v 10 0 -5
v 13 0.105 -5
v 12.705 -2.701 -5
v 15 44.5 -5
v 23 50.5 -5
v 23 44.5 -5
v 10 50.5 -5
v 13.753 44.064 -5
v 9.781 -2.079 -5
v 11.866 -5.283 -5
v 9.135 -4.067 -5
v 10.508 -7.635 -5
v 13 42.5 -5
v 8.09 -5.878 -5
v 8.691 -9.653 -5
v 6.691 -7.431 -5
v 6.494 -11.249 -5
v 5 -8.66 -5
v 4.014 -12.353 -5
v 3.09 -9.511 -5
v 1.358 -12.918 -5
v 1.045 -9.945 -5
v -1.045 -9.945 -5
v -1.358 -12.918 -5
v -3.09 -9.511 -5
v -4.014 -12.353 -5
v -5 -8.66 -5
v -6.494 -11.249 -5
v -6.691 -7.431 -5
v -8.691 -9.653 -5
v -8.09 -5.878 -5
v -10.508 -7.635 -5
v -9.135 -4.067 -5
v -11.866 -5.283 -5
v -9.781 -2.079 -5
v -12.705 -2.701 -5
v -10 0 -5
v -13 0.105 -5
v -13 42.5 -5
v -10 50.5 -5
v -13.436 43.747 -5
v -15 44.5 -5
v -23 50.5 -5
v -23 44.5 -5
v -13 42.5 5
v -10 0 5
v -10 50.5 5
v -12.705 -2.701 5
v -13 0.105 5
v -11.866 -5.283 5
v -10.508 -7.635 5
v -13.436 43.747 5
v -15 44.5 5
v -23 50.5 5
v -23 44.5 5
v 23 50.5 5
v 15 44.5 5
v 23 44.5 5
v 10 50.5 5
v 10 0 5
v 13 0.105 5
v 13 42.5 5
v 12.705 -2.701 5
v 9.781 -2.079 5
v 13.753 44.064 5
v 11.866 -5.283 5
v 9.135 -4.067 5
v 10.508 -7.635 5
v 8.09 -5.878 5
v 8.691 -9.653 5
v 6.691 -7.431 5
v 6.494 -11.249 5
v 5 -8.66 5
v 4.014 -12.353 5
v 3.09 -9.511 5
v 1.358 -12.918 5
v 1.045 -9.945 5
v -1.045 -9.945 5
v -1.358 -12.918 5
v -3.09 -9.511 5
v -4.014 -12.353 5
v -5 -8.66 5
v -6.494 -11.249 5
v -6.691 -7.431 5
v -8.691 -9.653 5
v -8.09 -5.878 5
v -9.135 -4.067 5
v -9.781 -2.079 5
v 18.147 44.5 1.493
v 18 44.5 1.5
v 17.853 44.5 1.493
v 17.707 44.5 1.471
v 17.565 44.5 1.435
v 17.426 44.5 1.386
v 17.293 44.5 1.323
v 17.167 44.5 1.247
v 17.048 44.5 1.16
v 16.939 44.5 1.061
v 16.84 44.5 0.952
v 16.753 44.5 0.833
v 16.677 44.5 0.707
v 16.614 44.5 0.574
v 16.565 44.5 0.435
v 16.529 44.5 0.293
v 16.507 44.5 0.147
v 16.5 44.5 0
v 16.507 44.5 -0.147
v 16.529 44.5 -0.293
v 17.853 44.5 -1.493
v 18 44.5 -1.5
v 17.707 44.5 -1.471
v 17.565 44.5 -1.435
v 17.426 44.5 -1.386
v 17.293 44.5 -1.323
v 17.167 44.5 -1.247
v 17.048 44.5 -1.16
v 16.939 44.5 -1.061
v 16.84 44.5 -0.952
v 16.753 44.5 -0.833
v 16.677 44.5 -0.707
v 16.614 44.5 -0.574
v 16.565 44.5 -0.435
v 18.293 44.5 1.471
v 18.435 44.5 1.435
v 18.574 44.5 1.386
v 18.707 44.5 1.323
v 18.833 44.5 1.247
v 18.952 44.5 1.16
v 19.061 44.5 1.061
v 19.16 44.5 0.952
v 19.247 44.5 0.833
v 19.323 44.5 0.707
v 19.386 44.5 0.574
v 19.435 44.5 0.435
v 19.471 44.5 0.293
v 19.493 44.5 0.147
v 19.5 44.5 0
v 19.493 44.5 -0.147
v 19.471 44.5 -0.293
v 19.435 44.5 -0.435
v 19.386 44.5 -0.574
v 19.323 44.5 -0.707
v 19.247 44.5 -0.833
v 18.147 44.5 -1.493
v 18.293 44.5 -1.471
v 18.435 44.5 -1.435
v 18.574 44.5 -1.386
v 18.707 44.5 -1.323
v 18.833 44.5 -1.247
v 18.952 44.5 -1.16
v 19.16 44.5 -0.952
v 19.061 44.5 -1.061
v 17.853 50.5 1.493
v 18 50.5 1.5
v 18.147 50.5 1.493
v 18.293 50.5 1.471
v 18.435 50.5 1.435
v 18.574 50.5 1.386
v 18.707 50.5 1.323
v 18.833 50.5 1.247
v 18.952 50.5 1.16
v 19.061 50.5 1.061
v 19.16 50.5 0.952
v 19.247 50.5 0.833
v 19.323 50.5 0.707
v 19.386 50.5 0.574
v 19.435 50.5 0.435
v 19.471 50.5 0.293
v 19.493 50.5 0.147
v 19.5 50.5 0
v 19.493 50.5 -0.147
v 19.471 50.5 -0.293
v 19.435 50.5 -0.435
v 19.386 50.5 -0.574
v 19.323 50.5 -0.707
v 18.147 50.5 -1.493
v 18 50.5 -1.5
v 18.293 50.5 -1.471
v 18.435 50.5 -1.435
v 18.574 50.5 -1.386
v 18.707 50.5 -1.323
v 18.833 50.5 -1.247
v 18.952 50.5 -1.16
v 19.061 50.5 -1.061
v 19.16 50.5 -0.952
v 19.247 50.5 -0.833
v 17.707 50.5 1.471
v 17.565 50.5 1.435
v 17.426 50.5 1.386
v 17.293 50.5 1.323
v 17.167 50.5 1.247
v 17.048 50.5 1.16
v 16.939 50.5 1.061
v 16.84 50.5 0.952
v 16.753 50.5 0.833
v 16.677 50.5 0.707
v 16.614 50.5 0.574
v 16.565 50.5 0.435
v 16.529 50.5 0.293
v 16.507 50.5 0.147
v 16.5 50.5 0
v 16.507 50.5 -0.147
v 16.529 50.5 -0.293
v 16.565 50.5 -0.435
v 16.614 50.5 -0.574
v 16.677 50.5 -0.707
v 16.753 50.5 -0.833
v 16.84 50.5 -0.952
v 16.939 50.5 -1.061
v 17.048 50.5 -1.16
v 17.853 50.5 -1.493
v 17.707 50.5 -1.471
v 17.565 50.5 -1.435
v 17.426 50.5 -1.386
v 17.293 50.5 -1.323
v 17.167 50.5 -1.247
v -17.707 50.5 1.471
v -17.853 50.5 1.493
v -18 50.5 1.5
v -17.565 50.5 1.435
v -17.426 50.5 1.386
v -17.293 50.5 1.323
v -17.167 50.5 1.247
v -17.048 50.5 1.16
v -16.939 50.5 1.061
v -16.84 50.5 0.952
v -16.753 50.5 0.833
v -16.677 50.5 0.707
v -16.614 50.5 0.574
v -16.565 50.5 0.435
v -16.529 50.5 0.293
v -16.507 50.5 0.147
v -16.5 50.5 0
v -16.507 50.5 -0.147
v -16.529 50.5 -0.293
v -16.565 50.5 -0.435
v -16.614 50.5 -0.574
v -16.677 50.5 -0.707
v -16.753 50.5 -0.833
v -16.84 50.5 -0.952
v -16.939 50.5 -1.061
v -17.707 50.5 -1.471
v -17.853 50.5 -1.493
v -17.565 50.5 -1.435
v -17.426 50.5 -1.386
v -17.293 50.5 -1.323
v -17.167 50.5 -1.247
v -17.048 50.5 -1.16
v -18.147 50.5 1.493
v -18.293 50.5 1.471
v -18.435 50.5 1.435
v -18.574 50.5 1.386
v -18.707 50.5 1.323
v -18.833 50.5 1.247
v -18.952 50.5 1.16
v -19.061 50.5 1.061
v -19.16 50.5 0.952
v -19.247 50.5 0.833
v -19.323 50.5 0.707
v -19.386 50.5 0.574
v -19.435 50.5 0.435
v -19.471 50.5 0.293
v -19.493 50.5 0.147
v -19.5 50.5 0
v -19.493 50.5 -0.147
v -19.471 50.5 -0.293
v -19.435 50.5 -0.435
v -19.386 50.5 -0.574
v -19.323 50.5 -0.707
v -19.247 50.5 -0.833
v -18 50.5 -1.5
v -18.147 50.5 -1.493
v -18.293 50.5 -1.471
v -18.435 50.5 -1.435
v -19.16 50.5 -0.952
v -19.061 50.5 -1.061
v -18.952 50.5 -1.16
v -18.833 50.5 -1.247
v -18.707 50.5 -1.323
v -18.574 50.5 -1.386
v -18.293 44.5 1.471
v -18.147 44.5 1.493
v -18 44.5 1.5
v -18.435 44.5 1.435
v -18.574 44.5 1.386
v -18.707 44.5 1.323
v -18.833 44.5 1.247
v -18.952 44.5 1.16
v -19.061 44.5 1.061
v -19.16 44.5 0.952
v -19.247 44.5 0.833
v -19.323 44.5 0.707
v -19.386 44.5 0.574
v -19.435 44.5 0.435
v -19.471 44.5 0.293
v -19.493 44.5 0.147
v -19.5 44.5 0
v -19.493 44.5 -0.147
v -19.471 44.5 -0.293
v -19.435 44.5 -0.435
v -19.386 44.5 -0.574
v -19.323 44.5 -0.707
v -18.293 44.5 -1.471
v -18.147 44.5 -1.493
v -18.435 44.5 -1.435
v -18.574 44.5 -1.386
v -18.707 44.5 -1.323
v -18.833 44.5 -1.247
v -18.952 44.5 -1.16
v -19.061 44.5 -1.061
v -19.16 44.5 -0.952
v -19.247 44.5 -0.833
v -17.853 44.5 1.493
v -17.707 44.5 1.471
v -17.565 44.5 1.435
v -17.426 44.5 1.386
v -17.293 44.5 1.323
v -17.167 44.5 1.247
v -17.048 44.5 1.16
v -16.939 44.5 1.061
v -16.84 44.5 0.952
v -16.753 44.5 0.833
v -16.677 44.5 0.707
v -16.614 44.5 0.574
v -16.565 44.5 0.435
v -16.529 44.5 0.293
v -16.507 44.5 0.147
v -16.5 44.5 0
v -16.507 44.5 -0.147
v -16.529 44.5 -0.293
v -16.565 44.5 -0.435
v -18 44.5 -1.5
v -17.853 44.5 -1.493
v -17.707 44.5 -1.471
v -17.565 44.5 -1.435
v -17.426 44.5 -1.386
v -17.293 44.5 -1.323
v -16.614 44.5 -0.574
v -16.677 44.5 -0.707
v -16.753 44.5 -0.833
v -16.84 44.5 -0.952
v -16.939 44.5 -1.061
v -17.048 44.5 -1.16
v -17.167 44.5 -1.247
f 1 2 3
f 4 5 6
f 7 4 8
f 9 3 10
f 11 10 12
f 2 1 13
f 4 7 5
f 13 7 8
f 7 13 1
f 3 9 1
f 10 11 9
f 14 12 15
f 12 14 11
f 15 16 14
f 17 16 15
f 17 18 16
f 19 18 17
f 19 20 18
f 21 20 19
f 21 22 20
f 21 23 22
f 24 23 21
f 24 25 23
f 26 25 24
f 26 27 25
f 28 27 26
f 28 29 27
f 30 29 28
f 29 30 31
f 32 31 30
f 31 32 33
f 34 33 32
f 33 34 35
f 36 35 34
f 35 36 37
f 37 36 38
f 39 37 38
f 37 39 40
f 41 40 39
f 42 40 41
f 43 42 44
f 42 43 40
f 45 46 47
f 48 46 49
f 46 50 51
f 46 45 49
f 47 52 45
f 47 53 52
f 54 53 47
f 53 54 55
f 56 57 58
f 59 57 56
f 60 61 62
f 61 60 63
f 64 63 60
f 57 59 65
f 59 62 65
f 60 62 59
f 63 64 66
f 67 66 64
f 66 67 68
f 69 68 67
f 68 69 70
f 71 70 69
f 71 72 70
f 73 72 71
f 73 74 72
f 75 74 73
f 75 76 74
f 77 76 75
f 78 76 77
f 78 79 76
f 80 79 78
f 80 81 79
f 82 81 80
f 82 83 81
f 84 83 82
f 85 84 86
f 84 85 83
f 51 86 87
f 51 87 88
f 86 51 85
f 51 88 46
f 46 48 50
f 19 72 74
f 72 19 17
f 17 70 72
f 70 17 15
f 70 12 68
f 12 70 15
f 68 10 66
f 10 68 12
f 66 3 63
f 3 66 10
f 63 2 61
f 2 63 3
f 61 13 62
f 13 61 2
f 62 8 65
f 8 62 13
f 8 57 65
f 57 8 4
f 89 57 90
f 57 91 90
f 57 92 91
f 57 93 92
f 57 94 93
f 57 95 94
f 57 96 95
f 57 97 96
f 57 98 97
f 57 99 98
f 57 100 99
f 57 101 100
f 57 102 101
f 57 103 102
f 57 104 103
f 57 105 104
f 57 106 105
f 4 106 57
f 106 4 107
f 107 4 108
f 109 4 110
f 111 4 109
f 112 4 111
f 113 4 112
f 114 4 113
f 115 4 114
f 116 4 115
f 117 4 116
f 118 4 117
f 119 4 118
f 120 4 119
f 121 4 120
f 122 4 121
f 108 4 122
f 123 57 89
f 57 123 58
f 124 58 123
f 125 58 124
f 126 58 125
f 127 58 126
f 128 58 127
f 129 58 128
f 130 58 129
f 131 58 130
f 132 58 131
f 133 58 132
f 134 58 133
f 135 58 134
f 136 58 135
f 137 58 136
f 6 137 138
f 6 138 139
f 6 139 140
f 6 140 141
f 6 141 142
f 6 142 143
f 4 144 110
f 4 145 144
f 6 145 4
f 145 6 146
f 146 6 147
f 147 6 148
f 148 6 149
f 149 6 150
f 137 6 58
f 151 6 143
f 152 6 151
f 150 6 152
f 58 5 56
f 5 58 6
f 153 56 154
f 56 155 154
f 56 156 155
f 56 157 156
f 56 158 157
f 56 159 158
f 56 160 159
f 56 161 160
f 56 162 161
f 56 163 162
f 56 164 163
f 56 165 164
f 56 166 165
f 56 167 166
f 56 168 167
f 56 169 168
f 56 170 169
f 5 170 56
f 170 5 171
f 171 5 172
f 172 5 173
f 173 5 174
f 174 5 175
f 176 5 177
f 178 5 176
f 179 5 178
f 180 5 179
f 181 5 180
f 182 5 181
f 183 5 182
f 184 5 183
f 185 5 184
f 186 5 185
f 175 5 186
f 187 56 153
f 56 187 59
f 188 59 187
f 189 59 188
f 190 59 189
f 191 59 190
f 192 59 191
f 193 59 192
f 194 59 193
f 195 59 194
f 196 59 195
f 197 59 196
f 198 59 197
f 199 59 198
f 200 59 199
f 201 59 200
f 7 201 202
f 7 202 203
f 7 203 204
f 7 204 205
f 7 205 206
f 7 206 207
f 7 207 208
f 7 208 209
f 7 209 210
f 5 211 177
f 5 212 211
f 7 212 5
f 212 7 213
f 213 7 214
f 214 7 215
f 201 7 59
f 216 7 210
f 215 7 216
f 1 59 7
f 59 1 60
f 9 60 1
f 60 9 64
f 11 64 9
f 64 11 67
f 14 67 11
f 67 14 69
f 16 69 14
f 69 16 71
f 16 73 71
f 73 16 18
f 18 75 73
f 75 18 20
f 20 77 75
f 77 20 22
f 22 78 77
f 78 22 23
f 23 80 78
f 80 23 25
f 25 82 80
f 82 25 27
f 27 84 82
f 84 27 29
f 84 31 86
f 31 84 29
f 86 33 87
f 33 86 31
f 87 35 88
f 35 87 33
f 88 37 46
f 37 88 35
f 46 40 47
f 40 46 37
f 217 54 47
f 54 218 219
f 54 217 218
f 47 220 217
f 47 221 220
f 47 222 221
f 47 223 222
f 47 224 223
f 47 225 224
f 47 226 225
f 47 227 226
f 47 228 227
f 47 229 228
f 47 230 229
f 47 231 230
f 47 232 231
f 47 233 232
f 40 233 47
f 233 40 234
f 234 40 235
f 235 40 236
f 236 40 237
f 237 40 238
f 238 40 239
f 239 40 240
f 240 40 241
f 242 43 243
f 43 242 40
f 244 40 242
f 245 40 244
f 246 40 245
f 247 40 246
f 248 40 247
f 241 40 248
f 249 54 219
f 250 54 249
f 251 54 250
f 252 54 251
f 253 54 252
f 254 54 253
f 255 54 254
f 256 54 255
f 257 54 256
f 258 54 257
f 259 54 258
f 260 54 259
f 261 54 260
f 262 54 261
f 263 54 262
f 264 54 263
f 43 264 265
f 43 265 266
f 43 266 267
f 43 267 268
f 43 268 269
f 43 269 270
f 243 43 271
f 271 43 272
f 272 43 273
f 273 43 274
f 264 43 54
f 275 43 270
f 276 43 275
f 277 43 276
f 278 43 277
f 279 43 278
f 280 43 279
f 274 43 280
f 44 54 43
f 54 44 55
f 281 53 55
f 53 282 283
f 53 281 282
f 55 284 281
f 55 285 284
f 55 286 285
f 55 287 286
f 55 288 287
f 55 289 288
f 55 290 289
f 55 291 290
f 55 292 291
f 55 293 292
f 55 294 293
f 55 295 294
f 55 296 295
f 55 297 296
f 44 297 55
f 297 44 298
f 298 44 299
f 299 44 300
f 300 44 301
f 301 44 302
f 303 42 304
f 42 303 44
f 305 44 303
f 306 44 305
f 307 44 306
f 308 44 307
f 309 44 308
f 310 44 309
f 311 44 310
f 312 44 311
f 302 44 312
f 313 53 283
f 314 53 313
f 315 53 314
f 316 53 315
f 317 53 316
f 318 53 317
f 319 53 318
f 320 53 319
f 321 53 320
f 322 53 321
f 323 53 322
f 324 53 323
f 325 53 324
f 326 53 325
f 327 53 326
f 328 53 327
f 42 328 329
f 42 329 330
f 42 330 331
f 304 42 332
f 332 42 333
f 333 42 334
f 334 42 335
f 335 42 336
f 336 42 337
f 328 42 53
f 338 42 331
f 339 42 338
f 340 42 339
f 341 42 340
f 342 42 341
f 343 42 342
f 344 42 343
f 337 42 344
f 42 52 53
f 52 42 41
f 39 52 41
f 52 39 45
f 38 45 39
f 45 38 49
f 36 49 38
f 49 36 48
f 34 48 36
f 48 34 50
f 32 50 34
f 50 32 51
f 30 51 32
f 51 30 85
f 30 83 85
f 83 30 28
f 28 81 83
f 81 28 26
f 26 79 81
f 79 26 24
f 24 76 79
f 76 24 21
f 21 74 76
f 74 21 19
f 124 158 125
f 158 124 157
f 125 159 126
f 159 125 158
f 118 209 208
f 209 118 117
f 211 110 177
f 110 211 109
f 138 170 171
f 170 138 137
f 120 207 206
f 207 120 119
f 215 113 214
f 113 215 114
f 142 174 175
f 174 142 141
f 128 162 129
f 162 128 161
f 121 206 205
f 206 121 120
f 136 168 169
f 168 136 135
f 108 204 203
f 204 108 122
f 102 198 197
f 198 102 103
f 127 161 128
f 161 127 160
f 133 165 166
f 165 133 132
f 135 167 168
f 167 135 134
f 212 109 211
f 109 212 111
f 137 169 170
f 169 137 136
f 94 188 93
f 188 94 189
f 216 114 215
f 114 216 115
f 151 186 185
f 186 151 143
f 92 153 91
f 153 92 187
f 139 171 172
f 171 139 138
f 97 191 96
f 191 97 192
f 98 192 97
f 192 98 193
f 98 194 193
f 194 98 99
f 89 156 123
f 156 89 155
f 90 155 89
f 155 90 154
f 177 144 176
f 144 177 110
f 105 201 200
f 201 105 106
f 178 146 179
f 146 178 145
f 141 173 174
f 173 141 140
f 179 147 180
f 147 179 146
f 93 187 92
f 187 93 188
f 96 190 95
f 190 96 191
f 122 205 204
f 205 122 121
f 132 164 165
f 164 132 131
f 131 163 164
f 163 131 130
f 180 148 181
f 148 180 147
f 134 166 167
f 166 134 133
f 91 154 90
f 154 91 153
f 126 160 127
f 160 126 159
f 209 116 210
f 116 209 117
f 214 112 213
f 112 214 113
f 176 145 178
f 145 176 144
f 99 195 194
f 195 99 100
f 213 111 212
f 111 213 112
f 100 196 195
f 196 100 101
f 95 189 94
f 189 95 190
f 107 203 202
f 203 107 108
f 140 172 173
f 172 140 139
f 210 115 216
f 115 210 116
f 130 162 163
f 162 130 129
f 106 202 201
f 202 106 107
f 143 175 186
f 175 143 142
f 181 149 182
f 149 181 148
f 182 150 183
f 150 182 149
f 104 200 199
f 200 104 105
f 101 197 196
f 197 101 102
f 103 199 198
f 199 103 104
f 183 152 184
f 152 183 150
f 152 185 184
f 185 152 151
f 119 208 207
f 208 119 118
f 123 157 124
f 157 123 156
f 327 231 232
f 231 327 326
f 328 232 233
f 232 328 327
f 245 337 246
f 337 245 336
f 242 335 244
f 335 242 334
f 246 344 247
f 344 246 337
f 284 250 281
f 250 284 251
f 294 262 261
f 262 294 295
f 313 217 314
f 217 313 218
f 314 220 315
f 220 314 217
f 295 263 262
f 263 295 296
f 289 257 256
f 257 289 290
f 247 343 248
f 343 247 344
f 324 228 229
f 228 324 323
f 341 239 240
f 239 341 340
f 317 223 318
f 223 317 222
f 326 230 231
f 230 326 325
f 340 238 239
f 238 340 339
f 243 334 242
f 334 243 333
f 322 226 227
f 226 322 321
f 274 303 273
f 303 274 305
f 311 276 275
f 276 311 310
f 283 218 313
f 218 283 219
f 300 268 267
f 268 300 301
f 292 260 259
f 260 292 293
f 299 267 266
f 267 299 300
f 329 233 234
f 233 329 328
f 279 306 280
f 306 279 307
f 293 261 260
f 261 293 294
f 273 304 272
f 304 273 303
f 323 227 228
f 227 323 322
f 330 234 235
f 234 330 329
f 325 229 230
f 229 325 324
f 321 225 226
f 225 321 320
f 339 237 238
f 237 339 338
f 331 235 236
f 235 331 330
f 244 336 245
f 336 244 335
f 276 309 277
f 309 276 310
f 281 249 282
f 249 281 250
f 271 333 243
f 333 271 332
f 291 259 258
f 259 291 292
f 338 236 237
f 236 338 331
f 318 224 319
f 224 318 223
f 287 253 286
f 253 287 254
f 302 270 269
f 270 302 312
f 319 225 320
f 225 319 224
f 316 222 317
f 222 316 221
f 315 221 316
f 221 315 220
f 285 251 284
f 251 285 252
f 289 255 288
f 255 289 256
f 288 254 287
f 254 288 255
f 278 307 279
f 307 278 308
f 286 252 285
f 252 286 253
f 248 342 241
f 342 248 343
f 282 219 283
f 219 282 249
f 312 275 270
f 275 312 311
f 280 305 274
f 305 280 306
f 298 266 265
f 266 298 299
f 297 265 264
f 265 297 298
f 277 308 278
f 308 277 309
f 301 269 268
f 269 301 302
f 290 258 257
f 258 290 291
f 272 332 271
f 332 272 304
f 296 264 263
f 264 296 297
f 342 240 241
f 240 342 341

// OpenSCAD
difference(){
linear_extrude(10,center=true)
difference(){
offset(-2){
hull(){
circle(d=20+2+3+5);
translate([0,-7.5-5+60,0])
square([30,5*2],center=true);
}
translate([0,-7.5-5+60,0])
square([50,5*2],center=true);
}
hull(){
translate([0,60,0])
circle(d=20);
circle(d=20);
}
}
translate([18,50,0])
rotate([90,0,0])
cylinder(d=3,h=20,center=true,$fn=64);
translate([-18,50,0])
rotate([90,0,0])
cylinder(d=3,h=20,center=true,$fn=64);
}
